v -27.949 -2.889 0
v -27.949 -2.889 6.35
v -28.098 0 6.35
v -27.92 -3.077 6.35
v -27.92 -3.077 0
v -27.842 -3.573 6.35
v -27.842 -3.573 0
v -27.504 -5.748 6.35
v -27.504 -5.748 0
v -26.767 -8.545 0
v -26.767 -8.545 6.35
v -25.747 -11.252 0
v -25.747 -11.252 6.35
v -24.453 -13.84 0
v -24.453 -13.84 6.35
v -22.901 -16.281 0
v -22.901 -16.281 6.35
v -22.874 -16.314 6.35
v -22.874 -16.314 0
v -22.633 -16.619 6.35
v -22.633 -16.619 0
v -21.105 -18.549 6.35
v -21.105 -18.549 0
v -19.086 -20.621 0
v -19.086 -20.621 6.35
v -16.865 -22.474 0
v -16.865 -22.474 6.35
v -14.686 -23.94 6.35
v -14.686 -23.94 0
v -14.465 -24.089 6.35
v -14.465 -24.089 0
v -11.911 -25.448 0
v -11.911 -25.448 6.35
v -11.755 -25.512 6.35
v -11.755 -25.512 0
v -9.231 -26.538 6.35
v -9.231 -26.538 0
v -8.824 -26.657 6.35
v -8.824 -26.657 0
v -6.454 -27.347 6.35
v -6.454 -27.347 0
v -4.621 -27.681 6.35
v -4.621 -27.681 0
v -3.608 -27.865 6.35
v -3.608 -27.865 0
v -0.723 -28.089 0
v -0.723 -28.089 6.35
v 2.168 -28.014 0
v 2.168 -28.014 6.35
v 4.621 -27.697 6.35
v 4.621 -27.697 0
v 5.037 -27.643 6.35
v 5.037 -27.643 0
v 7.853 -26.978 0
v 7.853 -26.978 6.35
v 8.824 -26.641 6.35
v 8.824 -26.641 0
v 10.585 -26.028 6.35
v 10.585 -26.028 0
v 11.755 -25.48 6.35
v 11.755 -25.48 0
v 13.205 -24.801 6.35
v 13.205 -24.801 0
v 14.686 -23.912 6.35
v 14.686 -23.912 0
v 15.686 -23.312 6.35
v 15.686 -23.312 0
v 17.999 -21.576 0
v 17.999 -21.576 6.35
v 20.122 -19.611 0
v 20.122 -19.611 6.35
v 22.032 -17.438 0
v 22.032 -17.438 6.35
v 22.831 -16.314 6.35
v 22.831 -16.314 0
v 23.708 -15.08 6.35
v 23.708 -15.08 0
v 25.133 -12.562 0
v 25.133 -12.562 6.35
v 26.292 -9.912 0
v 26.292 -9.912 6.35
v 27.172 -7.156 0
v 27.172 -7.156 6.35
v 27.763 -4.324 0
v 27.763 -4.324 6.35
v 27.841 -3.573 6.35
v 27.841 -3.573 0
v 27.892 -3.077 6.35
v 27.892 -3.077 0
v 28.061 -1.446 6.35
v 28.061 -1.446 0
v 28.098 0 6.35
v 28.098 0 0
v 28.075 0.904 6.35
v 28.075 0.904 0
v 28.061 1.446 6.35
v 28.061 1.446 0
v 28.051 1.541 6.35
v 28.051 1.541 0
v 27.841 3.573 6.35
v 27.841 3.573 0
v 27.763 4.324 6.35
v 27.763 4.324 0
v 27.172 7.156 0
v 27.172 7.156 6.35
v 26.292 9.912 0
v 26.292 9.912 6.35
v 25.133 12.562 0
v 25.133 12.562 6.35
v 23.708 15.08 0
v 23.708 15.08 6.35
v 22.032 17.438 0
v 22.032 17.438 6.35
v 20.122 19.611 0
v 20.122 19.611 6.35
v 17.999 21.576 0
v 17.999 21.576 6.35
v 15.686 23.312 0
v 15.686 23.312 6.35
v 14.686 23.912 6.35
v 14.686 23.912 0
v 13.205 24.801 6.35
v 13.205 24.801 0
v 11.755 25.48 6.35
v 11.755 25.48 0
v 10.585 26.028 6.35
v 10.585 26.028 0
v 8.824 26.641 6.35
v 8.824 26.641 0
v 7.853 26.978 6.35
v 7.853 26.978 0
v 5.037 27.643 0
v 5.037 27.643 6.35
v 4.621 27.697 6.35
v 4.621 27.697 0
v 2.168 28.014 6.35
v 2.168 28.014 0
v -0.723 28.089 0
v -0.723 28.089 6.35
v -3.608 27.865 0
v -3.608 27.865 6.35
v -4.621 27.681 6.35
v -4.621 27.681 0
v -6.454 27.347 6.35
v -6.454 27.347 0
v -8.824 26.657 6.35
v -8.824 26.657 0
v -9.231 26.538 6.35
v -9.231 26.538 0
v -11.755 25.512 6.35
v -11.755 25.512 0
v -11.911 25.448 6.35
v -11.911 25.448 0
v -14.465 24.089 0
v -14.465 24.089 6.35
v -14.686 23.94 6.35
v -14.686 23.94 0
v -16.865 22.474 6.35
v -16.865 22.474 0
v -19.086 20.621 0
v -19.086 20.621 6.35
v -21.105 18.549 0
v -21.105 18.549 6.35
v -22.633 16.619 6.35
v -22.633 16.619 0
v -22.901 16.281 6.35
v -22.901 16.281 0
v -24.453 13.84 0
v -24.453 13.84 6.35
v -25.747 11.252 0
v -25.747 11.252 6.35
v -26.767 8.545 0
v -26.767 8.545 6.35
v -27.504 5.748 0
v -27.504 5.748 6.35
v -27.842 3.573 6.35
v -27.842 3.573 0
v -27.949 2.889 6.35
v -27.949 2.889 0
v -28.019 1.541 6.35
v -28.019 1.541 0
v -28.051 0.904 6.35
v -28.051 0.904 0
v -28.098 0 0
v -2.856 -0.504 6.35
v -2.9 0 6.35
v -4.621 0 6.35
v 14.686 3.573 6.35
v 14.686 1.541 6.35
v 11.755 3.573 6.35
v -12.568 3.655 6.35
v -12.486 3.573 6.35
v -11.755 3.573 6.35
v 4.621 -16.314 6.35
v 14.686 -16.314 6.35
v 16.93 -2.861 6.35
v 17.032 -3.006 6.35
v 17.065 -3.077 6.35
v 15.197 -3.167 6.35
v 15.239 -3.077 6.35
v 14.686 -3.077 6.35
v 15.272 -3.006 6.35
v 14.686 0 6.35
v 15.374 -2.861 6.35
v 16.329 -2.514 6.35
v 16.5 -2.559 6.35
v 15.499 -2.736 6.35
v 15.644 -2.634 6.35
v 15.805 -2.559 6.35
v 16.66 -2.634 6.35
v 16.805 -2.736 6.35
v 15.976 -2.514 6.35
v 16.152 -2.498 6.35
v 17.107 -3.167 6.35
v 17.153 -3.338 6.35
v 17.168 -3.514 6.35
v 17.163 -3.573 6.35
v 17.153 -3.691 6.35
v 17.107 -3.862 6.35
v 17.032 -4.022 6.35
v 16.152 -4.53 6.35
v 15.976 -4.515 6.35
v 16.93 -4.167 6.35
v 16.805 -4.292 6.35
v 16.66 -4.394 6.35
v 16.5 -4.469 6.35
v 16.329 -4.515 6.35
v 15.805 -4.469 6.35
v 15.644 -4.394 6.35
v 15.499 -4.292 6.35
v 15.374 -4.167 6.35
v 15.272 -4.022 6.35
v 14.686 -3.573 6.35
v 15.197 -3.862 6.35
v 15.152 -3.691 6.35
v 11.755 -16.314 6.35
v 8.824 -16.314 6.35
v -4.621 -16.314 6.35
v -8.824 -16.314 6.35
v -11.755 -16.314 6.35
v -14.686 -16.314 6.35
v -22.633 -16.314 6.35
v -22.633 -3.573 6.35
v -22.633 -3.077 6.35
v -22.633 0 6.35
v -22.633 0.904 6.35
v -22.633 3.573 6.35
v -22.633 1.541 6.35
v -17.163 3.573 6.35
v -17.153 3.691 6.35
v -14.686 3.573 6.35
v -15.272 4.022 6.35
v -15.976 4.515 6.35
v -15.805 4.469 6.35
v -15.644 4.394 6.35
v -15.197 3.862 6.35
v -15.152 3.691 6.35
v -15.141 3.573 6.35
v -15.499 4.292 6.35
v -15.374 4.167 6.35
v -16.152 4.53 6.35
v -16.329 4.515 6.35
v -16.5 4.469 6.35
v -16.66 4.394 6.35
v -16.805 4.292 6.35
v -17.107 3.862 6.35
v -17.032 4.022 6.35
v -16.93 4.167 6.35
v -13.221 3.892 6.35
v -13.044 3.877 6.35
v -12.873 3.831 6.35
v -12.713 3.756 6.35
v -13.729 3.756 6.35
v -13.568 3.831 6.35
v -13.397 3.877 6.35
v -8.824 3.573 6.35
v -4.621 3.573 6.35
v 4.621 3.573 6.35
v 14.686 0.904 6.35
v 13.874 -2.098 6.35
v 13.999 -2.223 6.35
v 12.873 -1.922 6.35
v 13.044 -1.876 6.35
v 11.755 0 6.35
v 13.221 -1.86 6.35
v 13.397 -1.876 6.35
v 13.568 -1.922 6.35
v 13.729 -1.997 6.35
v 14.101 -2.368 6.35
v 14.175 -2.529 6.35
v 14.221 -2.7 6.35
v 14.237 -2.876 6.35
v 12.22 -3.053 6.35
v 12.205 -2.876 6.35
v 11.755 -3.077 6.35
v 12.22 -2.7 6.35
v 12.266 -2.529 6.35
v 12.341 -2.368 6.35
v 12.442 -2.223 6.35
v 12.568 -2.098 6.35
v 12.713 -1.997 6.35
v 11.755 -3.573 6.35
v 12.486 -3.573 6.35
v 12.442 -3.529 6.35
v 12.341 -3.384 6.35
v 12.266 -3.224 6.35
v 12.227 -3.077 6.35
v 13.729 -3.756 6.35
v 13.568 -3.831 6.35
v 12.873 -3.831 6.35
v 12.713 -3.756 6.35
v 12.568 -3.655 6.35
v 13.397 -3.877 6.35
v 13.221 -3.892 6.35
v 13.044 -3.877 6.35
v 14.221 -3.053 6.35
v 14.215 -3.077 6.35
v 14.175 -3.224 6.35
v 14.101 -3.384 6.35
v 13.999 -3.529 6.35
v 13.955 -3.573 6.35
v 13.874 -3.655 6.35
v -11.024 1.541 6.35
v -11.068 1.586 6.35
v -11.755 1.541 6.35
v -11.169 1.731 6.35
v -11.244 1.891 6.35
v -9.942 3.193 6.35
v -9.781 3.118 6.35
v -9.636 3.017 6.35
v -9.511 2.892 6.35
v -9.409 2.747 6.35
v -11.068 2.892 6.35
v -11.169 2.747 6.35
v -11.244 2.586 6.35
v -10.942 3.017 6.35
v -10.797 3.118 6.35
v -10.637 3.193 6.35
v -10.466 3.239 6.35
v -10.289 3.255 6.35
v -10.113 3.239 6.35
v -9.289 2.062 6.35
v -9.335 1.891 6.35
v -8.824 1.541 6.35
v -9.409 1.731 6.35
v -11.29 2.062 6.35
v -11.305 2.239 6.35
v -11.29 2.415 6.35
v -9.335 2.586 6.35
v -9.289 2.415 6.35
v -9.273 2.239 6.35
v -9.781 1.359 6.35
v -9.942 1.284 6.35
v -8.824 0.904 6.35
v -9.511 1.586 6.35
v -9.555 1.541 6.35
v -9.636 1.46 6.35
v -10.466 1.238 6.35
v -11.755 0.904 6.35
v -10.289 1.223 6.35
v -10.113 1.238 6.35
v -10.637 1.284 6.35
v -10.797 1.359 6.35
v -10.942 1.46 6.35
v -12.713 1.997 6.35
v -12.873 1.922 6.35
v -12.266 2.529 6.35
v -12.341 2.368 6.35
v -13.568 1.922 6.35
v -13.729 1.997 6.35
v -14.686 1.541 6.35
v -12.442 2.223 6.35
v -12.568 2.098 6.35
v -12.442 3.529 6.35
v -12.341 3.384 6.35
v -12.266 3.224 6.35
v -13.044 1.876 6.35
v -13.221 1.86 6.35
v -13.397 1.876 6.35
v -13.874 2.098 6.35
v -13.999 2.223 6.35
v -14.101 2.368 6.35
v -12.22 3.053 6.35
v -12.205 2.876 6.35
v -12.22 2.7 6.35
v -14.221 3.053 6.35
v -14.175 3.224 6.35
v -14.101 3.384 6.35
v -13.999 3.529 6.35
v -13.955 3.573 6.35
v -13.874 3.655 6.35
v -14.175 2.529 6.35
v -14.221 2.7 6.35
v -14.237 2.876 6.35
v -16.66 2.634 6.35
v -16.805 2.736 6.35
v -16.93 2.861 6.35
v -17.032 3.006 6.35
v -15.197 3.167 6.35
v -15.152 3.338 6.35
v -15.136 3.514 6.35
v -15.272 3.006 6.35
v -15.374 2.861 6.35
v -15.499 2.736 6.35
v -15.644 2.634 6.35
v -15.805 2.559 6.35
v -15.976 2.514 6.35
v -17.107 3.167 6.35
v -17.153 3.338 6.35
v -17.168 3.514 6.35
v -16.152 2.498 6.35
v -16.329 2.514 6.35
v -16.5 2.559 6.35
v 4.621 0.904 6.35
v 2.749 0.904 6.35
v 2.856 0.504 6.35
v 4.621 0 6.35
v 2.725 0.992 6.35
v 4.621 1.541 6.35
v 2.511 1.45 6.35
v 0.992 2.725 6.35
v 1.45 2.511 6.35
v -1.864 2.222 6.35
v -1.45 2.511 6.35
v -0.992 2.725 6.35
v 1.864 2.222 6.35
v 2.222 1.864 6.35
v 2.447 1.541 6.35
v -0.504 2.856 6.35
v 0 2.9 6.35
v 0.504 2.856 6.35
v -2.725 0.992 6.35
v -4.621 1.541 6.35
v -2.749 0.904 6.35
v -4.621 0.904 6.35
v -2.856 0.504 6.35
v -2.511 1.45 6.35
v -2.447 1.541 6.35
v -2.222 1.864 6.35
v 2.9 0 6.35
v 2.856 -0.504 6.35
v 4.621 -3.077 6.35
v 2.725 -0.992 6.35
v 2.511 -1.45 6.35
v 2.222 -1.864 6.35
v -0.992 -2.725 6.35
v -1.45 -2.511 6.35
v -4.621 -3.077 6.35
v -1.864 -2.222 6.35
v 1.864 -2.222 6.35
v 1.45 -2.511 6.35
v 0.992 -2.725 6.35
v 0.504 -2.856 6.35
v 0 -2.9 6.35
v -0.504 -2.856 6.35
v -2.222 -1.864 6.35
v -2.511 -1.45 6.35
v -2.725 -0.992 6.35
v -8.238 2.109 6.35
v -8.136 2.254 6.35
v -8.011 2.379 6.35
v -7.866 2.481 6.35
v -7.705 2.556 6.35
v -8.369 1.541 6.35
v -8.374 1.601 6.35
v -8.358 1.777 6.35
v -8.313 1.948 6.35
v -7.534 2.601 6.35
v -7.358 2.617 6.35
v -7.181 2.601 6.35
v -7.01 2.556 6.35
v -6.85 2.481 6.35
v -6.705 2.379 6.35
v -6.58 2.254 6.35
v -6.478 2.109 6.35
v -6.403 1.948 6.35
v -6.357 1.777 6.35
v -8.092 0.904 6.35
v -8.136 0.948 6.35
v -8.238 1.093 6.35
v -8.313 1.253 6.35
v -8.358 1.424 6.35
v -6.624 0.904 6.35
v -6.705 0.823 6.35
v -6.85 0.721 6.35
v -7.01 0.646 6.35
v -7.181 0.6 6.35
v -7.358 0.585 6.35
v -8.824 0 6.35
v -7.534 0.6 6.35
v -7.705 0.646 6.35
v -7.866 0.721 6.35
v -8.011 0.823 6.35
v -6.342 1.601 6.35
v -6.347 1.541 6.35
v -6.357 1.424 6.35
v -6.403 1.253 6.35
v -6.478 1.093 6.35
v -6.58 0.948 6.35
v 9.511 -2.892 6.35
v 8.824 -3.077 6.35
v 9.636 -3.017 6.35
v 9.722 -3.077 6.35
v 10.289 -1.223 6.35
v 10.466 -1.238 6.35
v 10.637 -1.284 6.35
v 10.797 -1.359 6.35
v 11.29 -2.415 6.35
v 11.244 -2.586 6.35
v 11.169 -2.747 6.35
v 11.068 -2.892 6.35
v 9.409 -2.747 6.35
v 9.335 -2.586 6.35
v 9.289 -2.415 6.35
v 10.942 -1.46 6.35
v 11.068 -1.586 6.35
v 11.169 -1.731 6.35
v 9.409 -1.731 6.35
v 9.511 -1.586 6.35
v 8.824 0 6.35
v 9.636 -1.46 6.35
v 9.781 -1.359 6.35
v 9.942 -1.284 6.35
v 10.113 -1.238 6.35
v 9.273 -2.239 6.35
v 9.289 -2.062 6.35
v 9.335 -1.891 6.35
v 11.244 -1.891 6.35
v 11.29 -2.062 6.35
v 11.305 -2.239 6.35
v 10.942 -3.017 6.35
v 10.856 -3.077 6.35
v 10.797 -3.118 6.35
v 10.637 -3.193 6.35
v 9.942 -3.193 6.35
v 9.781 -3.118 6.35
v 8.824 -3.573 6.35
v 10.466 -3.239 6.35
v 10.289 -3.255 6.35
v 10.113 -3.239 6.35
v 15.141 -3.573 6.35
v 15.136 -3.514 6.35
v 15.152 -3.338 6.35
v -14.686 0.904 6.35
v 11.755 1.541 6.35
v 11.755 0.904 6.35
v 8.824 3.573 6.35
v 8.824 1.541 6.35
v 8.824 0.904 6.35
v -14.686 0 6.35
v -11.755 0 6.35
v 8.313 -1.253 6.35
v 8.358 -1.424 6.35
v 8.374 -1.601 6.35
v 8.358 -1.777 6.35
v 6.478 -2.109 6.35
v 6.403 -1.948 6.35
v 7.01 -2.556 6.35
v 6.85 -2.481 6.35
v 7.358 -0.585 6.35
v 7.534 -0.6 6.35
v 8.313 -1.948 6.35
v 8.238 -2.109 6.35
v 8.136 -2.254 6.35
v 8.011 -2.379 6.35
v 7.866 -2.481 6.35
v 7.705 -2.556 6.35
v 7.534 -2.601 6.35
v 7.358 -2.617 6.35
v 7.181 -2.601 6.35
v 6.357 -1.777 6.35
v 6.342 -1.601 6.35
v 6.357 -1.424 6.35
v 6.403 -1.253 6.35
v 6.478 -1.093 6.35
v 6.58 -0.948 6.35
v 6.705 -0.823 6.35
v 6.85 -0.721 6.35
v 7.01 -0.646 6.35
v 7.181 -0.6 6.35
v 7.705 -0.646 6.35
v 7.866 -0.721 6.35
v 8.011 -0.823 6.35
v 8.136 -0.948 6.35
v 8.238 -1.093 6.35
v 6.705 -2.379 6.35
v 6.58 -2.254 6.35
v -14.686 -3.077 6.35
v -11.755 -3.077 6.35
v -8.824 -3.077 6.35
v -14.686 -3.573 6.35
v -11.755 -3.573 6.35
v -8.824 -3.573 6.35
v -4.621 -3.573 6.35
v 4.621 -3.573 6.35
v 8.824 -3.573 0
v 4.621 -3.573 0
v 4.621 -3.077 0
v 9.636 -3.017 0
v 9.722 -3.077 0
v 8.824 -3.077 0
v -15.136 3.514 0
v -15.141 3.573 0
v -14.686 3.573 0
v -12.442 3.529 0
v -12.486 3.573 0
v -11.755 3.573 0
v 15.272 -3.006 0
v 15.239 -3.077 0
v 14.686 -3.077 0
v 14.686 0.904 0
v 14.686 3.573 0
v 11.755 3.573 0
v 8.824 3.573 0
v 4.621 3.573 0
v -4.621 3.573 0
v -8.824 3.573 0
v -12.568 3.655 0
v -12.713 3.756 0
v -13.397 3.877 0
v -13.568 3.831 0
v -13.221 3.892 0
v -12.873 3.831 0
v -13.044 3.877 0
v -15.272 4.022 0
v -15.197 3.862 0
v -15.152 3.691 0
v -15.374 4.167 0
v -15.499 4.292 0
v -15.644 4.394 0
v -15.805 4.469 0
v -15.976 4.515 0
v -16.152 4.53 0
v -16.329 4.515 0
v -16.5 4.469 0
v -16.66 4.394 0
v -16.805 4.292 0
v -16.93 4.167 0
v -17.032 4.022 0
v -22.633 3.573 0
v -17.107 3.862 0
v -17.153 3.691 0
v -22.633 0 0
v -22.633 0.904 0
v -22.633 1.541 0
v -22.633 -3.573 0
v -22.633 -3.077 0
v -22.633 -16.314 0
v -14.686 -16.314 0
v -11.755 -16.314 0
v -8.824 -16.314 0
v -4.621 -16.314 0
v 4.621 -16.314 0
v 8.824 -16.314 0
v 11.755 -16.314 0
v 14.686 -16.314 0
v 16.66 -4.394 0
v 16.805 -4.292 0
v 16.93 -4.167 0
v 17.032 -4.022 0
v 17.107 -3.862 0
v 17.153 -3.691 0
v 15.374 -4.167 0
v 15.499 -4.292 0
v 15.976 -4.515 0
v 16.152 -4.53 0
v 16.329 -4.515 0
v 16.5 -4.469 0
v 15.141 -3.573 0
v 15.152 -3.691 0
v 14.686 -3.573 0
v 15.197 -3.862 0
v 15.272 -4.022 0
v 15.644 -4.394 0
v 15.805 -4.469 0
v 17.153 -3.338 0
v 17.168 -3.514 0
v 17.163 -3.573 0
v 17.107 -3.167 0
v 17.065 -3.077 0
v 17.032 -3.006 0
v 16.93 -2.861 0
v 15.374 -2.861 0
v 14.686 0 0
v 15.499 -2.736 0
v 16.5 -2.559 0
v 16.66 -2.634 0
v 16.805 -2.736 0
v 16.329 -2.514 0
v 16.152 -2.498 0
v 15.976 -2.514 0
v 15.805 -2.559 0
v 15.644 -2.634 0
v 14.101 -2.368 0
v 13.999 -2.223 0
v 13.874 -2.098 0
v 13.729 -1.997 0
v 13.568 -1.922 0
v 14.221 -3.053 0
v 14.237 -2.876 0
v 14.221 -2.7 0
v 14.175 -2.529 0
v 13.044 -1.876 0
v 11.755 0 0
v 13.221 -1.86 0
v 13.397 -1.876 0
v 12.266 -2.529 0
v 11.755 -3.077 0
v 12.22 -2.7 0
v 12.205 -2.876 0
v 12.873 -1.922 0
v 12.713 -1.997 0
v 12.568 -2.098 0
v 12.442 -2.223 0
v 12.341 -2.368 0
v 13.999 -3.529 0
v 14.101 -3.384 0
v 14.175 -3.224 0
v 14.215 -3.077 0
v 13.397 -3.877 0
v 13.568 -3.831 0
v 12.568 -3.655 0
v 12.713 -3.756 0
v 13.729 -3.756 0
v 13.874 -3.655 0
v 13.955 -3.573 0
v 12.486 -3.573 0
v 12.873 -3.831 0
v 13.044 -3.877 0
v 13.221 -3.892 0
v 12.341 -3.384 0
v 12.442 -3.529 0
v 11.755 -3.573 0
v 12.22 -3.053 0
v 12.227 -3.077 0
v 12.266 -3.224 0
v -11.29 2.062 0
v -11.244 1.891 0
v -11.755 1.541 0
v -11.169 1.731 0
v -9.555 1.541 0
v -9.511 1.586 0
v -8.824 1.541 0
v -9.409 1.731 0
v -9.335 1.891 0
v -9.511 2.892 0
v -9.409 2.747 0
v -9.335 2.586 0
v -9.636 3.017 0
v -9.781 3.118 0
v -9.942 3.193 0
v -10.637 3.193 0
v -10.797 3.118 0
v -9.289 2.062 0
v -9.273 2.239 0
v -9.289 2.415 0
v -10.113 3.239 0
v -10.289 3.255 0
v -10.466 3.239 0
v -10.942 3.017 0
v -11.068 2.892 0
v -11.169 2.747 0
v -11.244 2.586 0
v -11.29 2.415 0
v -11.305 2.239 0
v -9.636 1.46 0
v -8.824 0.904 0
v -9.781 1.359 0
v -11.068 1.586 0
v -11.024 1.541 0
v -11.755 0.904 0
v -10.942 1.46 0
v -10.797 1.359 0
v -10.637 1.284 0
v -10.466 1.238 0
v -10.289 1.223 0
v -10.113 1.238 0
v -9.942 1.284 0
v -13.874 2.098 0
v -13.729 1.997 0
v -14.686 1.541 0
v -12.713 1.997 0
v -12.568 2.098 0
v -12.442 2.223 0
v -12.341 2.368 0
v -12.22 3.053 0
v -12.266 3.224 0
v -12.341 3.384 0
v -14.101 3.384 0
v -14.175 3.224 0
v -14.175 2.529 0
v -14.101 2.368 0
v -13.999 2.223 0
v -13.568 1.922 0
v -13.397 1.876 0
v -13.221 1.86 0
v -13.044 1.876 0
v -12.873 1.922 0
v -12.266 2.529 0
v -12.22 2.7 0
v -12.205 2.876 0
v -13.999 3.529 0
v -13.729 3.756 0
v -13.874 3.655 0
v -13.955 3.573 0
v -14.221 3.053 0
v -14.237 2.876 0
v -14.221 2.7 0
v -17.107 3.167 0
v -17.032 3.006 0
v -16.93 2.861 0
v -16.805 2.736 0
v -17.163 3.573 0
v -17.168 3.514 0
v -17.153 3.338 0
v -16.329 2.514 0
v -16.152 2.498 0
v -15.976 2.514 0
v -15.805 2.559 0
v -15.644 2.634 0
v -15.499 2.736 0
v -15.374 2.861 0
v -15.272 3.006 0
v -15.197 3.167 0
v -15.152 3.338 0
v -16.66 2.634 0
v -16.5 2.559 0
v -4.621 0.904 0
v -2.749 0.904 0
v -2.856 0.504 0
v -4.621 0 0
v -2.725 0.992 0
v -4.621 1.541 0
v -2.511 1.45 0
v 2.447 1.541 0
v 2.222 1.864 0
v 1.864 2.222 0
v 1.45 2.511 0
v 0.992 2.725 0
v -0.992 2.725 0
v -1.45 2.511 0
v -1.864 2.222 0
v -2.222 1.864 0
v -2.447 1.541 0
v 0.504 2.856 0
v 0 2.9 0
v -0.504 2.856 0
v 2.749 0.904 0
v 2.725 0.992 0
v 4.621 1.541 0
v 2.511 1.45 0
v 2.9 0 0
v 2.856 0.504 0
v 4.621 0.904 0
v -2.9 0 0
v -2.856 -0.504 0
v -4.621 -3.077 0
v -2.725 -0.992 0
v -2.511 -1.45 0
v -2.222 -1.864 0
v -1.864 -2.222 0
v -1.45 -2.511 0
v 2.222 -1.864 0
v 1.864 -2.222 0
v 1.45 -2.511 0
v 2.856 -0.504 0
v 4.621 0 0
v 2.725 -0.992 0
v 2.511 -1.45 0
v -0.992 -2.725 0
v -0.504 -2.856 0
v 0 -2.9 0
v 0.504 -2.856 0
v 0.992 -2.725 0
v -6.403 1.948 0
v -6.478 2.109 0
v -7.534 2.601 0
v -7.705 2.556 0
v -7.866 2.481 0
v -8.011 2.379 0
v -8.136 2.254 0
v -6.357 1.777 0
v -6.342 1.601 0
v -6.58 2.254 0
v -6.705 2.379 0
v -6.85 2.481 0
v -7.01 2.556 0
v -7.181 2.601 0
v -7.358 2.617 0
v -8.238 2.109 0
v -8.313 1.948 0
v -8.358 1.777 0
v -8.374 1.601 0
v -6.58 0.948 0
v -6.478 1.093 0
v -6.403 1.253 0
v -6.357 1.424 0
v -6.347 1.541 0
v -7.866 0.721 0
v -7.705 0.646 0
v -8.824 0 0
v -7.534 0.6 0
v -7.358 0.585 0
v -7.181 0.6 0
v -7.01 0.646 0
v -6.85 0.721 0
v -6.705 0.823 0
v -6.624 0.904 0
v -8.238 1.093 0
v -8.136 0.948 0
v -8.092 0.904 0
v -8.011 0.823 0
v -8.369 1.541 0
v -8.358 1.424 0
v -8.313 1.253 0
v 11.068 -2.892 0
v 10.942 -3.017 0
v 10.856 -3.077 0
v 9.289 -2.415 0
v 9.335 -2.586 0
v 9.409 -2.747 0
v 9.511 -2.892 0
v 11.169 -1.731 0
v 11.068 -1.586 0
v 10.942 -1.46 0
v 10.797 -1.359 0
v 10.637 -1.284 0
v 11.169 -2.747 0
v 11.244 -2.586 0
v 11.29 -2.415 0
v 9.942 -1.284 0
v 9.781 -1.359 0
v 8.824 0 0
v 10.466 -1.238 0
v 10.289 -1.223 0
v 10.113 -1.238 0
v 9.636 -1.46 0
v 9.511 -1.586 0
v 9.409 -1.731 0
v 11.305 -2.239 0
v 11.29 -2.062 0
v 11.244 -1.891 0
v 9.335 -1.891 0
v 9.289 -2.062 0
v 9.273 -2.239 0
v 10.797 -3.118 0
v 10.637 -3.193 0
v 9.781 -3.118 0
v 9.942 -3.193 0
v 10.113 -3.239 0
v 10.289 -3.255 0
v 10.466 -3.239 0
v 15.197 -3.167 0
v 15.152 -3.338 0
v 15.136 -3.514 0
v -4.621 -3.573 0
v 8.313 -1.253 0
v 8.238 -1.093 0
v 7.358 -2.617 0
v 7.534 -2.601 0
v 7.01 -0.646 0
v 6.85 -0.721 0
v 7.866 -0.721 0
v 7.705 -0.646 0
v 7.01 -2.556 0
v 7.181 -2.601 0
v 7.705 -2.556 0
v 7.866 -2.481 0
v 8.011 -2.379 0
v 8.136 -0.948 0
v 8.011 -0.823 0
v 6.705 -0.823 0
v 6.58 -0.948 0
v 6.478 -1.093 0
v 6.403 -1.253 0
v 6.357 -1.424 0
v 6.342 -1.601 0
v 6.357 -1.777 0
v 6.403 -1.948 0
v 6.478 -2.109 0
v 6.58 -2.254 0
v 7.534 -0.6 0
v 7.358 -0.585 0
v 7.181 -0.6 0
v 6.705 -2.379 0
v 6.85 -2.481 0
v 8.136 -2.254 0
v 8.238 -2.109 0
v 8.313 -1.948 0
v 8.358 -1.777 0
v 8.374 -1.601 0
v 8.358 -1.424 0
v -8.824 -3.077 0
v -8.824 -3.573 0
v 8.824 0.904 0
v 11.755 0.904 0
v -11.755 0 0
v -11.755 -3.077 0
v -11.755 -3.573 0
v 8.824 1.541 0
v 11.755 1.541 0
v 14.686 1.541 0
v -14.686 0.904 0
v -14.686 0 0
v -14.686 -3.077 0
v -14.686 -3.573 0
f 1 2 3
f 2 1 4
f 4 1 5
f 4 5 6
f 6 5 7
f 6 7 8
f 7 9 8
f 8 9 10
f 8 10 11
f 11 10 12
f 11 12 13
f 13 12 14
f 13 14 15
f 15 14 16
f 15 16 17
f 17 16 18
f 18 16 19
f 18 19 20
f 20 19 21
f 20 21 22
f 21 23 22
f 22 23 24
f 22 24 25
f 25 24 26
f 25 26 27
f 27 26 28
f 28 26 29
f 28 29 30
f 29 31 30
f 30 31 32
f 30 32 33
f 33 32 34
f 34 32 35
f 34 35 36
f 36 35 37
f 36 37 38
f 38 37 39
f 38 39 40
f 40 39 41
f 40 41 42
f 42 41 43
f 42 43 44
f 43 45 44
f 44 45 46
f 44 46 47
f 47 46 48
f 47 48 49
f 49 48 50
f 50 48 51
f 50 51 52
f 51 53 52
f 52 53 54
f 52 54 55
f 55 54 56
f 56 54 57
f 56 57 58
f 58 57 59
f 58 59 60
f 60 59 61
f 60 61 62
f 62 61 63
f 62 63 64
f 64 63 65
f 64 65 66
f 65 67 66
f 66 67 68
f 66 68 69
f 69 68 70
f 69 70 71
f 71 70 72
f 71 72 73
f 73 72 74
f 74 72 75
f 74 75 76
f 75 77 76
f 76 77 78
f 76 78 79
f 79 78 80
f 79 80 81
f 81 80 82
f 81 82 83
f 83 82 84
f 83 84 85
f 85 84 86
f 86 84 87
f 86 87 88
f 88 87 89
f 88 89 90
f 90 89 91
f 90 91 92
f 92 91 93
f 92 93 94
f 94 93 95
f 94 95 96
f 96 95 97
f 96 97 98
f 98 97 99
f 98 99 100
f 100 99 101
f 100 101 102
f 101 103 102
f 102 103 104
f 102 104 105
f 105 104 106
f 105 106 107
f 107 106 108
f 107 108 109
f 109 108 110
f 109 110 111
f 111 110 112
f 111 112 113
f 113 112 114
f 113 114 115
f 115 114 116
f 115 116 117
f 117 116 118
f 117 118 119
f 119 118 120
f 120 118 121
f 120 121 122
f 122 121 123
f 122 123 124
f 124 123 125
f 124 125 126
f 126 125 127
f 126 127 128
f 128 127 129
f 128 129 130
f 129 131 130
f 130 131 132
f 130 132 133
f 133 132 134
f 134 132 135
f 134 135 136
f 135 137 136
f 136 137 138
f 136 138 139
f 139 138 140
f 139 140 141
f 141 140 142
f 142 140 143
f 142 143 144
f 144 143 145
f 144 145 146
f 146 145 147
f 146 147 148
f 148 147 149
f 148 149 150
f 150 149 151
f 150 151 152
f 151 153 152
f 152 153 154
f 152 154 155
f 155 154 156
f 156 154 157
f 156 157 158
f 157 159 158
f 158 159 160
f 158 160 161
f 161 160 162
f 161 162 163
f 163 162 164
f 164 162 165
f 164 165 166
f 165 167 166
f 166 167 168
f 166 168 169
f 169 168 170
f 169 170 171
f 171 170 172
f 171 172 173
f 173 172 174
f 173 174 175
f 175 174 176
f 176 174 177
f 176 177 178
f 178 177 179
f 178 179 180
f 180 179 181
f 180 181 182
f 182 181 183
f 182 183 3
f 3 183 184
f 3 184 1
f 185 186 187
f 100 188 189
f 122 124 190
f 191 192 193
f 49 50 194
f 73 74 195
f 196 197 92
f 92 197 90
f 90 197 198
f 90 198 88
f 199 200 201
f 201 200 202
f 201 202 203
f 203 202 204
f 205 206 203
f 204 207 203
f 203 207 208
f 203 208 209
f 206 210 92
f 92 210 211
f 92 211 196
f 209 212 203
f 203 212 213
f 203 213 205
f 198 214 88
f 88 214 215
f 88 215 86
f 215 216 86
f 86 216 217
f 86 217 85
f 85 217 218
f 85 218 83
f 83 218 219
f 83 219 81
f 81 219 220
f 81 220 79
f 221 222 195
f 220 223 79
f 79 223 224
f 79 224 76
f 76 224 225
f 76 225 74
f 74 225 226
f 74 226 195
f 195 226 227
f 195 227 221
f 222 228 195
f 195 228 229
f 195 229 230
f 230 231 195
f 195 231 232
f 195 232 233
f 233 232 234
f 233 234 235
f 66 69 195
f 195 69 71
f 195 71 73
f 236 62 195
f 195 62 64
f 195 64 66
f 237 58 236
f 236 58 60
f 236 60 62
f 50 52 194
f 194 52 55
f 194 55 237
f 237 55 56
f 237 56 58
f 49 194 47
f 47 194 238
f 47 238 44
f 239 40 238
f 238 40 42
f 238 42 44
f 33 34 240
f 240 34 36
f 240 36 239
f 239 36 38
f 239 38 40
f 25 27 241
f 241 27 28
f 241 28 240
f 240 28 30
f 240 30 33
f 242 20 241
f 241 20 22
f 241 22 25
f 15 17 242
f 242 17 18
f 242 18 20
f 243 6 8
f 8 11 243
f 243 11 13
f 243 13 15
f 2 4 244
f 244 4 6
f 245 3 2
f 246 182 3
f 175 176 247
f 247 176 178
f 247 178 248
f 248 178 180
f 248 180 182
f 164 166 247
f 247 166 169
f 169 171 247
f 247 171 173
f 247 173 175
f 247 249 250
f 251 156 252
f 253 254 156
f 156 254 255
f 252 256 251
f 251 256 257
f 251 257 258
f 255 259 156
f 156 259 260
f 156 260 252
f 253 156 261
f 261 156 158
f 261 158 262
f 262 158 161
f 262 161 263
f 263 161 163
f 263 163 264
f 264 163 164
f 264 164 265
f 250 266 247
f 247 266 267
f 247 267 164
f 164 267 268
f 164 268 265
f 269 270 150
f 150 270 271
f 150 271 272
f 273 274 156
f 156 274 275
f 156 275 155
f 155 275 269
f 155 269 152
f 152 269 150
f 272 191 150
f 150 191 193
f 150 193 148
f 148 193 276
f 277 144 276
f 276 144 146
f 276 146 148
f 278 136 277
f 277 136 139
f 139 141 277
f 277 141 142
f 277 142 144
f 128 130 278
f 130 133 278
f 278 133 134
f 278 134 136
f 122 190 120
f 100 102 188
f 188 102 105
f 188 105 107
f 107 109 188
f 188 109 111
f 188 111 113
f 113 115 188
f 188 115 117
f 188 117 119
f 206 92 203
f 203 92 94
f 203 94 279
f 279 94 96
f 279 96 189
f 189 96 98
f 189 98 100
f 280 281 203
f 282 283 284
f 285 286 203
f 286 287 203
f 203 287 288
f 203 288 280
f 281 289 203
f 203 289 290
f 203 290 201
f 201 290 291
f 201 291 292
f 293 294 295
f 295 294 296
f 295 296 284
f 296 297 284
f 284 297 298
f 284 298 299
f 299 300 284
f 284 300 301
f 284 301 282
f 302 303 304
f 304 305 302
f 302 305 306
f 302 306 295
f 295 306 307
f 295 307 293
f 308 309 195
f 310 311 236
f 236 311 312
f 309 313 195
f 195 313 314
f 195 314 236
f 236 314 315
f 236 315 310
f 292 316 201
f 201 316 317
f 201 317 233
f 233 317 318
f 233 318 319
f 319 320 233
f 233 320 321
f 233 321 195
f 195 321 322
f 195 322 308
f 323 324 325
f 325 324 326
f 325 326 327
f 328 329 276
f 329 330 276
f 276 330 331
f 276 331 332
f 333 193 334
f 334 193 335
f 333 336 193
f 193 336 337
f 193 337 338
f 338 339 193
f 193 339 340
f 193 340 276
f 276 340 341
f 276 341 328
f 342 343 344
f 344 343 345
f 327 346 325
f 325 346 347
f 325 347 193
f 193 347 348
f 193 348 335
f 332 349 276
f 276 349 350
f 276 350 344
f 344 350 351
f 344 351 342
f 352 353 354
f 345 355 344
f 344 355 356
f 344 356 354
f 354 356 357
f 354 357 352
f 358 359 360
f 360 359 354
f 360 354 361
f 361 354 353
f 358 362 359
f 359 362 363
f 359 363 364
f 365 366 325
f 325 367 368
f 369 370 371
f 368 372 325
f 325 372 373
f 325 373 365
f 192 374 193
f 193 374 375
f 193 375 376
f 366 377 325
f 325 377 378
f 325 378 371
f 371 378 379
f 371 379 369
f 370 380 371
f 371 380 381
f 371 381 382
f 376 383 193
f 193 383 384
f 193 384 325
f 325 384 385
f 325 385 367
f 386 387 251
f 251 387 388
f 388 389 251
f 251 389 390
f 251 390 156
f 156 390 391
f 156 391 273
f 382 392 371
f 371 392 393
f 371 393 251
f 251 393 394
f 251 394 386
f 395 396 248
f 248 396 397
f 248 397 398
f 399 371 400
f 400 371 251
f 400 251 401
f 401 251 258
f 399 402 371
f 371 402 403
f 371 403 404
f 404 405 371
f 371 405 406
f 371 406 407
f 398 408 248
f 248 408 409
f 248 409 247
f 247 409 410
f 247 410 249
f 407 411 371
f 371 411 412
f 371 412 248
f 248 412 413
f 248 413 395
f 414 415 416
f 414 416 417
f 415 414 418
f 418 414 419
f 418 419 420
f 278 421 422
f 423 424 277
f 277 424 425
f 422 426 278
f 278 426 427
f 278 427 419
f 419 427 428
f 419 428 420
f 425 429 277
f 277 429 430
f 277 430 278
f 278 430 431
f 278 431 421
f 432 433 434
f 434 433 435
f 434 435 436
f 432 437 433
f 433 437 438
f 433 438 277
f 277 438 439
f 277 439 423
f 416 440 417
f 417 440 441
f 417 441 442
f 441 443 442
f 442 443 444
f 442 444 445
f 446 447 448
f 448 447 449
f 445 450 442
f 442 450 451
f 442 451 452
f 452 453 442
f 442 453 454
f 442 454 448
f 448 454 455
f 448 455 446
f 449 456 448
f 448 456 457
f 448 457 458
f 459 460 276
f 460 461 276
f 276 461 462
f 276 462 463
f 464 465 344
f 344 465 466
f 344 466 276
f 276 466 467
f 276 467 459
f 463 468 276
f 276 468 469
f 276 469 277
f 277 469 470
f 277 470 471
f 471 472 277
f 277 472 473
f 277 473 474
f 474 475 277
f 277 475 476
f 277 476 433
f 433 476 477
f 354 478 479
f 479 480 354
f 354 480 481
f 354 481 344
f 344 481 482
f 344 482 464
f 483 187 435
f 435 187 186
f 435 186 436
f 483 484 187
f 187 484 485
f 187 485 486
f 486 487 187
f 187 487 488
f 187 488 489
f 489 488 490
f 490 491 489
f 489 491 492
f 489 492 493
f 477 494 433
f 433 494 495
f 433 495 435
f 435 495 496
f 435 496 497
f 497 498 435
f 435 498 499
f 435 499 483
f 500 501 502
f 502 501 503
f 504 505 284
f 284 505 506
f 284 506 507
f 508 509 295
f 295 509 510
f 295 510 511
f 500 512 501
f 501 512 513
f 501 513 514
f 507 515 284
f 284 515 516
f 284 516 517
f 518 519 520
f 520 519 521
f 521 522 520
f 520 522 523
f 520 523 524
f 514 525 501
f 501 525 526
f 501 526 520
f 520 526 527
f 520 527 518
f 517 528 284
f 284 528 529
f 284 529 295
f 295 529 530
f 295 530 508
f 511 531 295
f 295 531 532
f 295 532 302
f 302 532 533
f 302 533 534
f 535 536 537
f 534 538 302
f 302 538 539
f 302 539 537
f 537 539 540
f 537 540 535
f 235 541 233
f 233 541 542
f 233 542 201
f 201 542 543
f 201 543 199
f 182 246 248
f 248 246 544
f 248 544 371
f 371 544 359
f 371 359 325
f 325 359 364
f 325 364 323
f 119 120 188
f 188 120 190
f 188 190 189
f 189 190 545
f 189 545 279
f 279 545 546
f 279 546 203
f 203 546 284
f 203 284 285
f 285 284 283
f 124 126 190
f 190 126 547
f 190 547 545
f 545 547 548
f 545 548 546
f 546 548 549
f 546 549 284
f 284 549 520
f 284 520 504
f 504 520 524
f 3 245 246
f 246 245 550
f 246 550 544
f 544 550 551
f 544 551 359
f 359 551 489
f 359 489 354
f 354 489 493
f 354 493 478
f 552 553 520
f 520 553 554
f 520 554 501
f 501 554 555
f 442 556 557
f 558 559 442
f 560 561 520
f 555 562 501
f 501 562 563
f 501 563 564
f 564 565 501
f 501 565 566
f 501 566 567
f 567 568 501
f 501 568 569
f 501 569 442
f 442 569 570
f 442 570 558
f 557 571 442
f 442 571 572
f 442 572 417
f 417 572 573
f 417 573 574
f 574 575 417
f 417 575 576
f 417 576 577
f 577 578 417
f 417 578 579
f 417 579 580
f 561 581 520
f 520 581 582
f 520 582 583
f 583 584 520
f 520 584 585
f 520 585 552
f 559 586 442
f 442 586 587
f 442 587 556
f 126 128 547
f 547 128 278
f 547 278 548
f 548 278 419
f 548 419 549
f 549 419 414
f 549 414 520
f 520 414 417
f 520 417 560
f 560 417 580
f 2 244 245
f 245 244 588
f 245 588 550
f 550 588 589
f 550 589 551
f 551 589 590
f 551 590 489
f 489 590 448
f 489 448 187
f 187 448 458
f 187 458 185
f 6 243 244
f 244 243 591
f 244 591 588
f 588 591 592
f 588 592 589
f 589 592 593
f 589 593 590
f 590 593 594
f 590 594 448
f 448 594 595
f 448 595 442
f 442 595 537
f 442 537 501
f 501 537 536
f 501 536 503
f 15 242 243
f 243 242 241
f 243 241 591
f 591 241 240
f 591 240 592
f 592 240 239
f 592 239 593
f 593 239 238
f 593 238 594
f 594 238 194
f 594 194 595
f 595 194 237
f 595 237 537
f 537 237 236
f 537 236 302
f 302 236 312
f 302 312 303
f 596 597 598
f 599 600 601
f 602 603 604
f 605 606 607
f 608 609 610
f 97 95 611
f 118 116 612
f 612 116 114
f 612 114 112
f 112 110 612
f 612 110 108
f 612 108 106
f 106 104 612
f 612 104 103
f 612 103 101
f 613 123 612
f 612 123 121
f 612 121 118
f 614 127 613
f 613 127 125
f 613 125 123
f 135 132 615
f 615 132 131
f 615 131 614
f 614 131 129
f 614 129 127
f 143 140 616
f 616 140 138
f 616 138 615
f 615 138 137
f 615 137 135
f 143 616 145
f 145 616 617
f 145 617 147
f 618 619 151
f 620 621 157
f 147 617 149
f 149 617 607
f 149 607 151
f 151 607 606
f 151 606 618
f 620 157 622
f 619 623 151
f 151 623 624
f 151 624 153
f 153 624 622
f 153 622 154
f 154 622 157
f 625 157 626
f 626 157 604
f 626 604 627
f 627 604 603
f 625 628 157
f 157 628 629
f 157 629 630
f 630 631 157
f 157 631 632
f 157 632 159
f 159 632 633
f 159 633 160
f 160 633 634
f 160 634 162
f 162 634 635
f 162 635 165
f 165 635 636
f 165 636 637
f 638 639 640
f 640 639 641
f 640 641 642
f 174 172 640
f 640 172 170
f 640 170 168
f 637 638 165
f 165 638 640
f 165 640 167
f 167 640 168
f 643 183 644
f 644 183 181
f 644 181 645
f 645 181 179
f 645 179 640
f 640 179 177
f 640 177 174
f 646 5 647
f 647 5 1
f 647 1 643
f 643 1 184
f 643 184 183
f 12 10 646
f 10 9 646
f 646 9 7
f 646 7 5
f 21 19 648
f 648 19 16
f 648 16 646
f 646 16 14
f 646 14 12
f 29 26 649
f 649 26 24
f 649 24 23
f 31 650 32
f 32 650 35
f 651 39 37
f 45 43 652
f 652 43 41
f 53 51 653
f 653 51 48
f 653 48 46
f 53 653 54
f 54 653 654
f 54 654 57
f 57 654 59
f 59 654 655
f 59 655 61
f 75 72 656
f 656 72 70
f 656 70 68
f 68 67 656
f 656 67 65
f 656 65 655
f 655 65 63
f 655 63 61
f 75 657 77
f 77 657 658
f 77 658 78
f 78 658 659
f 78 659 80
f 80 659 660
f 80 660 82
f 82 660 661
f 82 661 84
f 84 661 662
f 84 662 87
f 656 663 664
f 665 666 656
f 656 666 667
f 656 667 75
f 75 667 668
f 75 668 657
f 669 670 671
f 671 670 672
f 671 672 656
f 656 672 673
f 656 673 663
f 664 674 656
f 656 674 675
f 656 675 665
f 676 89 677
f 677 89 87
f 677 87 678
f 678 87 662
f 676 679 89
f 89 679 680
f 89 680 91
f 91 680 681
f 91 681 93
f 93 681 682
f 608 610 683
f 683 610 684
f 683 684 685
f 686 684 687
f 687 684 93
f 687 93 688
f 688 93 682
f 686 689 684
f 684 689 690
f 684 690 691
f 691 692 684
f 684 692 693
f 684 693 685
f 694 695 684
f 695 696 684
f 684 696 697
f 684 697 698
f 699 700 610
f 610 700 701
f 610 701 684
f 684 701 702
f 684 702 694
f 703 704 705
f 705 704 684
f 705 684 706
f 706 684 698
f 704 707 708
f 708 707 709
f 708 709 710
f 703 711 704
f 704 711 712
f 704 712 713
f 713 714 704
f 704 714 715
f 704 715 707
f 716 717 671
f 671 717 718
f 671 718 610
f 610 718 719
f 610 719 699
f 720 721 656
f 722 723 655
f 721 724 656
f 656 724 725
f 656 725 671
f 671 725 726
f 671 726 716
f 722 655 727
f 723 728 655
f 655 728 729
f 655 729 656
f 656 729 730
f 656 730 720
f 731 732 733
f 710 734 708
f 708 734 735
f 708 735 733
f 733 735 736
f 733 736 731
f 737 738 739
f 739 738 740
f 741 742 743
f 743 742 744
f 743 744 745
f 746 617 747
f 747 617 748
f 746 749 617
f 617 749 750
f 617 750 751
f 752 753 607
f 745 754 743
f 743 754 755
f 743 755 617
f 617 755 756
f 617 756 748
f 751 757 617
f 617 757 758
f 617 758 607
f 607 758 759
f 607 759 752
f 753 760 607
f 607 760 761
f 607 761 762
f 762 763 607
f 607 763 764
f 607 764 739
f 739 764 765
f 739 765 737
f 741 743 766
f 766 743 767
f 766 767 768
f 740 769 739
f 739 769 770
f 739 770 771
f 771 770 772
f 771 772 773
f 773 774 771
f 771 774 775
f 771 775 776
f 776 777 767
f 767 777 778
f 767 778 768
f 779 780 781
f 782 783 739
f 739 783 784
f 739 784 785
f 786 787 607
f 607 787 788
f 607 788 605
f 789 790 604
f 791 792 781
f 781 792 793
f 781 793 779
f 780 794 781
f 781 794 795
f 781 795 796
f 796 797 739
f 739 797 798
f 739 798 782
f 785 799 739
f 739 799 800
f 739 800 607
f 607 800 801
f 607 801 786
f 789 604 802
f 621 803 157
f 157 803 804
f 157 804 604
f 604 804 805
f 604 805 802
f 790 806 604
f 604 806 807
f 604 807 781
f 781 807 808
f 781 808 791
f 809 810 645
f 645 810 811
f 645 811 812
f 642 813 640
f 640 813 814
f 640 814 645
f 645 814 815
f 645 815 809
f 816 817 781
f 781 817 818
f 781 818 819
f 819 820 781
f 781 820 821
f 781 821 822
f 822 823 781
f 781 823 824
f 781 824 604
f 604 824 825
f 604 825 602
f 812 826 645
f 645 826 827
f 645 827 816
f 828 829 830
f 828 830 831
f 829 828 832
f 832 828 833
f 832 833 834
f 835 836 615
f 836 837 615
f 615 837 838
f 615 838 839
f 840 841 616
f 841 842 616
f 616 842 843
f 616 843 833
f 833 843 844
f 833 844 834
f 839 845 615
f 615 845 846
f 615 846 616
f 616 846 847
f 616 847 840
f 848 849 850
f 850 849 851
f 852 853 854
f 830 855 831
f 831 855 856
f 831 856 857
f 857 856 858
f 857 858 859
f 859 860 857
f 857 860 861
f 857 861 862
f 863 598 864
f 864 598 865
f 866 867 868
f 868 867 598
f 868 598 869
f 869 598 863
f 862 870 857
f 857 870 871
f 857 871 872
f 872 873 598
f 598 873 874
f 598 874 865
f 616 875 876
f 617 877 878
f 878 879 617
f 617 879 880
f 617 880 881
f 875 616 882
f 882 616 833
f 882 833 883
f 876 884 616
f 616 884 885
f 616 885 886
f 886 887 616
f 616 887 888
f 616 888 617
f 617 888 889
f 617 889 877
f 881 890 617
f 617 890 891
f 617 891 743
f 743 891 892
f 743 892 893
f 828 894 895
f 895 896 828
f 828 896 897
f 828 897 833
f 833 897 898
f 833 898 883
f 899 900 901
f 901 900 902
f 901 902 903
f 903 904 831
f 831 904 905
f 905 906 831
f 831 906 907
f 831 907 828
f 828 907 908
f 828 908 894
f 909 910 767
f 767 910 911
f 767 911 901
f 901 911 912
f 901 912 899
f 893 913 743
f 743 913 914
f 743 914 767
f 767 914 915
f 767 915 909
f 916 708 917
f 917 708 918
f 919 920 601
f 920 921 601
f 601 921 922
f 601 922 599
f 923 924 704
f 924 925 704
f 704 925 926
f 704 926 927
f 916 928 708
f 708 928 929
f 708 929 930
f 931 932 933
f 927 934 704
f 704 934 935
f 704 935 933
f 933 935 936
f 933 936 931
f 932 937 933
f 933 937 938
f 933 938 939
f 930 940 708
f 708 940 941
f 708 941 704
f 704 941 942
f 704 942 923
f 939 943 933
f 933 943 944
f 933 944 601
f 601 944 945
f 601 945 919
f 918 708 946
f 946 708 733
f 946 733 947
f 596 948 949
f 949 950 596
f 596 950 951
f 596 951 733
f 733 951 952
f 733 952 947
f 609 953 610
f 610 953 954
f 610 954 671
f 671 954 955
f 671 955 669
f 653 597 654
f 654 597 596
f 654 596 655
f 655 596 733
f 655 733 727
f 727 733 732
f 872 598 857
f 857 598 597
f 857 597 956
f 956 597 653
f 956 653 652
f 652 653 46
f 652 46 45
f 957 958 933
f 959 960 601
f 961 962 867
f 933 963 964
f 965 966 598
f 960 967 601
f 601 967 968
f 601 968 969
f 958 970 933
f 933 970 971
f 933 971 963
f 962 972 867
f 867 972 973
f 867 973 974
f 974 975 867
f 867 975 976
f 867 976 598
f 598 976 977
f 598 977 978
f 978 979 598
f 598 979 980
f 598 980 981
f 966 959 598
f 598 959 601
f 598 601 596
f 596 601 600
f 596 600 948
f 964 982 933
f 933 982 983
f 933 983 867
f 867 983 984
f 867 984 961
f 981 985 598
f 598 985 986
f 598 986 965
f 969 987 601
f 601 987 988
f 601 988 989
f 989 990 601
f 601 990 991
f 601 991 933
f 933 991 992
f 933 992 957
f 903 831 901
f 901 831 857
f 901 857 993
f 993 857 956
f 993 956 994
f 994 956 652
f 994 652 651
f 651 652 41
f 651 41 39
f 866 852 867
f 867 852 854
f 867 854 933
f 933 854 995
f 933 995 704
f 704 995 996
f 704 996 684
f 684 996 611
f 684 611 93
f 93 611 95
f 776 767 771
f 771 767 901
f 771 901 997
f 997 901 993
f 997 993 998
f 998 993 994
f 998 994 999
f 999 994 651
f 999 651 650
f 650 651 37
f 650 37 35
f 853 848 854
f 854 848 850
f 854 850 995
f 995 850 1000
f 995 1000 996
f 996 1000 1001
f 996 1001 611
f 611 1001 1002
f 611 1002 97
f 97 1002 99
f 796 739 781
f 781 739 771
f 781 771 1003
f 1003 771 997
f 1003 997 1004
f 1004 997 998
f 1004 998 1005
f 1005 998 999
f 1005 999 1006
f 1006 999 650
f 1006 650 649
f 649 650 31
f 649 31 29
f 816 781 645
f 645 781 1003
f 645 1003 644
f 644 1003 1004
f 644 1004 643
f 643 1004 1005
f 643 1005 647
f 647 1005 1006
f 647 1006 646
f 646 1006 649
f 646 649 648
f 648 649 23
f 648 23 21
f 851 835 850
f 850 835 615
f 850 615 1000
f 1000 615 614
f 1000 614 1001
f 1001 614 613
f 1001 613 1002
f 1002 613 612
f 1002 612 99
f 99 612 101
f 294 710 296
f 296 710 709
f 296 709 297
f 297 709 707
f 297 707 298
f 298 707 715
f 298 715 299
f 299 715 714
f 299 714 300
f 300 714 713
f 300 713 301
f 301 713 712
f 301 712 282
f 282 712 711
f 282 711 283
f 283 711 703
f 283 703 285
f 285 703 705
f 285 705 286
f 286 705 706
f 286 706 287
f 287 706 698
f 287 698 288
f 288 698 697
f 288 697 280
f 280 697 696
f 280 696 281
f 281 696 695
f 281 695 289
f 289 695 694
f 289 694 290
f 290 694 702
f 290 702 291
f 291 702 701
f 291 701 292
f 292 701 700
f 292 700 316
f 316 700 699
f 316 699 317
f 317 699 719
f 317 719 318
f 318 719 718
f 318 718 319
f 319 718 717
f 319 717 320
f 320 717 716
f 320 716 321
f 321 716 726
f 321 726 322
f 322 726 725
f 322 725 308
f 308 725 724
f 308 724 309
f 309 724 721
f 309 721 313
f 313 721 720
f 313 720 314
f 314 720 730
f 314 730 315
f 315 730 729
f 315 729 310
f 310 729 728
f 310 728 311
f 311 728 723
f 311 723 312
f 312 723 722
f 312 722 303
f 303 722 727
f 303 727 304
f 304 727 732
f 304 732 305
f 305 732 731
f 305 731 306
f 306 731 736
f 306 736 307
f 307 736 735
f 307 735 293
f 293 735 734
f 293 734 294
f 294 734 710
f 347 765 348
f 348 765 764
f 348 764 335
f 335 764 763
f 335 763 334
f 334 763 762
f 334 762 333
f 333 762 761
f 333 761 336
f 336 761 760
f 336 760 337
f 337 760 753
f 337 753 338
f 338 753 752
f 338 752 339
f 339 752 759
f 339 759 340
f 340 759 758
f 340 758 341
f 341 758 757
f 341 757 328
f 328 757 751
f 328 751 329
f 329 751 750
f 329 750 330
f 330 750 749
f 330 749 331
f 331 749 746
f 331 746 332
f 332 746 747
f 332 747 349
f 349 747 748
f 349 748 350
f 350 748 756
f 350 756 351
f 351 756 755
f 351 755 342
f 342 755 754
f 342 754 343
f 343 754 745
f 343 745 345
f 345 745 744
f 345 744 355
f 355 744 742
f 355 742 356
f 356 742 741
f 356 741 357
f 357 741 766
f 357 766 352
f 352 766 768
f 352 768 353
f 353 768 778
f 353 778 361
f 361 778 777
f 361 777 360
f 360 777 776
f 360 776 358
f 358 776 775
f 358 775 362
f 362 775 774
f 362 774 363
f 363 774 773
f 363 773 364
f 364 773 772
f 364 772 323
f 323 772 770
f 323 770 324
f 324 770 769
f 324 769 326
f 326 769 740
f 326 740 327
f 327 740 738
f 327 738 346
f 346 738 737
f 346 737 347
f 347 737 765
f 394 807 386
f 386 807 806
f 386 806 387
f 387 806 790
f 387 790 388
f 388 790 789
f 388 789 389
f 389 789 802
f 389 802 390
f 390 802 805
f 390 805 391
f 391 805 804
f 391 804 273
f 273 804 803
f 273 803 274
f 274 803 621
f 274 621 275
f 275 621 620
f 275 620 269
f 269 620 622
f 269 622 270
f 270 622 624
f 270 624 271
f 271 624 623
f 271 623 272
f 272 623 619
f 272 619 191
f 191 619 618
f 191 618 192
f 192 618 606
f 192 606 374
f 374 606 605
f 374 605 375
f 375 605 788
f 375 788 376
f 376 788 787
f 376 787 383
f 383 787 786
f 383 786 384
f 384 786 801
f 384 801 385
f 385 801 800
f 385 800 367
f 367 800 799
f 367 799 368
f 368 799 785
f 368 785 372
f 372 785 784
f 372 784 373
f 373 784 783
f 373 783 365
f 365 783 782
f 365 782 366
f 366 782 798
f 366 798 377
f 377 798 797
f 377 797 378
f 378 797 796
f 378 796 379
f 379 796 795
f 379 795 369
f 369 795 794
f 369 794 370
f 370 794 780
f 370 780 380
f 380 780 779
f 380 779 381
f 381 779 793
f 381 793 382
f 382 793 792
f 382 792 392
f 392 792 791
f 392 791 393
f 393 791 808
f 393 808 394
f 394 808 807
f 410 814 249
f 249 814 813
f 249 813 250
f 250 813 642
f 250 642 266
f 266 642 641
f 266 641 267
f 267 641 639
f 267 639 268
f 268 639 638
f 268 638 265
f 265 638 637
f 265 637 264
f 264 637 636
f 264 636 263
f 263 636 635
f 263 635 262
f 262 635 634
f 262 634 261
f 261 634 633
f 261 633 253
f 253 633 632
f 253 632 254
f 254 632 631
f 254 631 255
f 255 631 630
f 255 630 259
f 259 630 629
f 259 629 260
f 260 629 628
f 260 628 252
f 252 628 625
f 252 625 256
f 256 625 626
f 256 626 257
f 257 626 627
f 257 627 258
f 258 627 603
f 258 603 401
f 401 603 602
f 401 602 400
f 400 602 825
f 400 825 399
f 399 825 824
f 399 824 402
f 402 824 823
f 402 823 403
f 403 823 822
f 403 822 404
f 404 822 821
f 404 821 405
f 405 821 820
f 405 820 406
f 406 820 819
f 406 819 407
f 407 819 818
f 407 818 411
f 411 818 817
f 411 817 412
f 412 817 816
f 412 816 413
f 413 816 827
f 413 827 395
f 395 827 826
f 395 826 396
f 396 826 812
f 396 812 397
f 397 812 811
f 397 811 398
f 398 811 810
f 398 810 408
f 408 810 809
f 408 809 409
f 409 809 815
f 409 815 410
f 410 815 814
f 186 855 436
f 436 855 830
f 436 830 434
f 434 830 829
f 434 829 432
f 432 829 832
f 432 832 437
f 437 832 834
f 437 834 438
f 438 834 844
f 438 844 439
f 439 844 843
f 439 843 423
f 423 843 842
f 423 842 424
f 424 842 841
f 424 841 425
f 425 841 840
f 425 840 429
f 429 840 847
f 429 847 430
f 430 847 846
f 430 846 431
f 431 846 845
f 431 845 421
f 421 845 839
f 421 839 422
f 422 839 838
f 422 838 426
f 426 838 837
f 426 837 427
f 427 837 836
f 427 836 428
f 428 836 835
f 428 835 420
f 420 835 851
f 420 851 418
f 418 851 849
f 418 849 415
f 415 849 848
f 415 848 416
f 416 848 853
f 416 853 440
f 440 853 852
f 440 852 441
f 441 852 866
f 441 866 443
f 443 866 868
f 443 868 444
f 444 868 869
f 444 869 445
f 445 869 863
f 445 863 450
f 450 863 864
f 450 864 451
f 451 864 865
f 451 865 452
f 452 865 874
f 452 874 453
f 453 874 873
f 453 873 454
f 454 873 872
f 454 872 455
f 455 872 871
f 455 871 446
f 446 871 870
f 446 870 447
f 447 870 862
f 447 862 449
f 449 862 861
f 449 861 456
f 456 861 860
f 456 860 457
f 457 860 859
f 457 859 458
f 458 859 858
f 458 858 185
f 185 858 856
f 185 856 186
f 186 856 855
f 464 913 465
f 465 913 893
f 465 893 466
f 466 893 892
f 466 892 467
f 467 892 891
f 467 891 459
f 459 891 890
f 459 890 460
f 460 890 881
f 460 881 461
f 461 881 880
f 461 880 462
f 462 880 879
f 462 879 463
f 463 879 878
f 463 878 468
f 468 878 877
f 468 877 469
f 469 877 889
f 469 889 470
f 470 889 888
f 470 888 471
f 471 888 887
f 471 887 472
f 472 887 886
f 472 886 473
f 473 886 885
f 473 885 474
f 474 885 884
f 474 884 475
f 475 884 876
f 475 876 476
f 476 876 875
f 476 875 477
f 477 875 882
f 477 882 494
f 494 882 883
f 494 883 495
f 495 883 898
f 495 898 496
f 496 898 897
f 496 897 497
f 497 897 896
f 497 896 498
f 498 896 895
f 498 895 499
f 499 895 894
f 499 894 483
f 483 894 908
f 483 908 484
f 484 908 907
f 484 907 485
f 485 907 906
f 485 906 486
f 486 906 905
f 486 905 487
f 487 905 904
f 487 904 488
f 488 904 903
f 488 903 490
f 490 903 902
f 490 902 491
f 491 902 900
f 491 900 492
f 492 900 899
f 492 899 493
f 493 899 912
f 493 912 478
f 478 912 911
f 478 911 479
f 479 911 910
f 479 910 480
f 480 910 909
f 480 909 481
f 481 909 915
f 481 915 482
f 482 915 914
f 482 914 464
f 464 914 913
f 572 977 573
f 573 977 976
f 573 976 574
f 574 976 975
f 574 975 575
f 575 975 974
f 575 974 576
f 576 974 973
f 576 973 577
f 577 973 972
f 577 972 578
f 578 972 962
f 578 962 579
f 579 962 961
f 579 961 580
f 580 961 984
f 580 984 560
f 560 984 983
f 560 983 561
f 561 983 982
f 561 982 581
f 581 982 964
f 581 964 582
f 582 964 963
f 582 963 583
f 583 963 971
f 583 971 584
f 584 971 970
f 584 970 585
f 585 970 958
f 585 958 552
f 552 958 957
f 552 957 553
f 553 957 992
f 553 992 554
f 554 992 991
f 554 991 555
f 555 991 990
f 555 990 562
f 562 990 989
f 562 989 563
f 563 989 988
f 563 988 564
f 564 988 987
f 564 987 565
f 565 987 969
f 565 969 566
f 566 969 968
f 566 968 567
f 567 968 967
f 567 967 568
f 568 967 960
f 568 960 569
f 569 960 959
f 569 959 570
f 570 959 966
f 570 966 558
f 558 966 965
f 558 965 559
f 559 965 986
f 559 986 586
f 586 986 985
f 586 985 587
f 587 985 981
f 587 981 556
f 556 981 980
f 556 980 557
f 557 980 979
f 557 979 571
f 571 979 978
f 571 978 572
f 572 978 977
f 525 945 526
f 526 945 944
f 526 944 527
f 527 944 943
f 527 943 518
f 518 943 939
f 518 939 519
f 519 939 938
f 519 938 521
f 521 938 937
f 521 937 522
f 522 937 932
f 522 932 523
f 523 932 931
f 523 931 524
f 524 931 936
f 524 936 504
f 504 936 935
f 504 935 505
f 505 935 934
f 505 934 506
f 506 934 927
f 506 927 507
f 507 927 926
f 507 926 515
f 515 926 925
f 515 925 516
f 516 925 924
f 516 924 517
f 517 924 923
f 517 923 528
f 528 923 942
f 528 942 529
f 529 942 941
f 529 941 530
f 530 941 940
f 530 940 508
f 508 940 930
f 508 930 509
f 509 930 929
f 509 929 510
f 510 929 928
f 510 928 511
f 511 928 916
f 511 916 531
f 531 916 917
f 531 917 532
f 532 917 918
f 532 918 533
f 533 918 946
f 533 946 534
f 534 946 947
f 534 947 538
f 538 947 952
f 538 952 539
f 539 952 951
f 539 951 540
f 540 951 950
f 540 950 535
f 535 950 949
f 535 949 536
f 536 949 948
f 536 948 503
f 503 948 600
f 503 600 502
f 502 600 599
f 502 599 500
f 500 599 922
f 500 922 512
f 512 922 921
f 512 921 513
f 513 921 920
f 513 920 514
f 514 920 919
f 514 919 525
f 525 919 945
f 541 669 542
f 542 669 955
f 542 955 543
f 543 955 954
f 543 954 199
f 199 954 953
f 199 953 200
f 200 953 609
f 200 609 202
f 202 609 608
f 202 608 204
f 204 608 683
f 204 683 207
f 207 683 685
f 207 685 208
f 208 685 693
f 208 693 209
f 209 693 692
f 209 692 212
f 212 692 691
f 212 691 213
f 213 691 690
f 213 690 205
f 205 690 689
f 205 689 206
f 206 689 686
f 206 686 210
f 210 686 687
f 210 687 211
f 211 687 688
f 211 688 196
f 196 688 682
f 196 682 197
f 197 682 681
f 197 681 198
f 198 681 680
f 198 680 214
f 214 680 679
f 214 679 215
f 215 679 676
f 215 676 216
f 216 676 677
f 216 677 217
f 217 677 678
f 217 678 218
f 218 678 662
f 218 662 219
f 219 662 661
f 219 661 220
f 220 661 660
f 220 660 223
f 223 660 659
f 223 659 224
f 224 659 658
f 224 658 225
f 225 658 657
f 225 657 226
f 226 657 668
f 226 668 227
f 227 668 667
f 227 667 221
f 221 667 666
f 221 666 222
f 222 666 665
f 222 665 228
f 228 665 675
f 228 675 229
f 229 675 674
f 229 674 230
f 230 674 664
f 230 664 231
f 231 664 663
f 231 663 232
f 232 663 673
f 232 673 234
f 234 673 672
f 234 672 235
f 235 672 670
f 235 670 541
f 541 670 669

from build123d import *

# Parameters (mm, degrees)
SKETCH1_R           = 28.097988
BOSS_EXTRUDE1_DEPTH = 6.35
SKETCH2_R           = 1.016
SKETCH2_R_2         = 2.9
CUT_EXTRUDE1_DEPTH  = 6.35


with BuildPart() as part:
    # Sketch1 → Boss-Extrude1 (new body)
    with BuildSketch(Plane.XY):
        Circle(SKETCH1_R)
    extrude(amount=BOSS_EXTRUDE1_DEPTH)

    # Sketch2 → Cut-Extrude1 (cut)
    with BuildSketch(Plane(origin=(0, 0, 0), x_dir=(-1, 0, 0), z_dir=(0, 0, -1))):
        with Locations((-13.220714373, -2.876388616)):
            Circle(SKETCH2_R)
        with Locations((-16.152136629, -3.514168797)):
            Circle(SKETCH2_R)
        with Locations((-10.289292117, -2.238608435)):
            Circle(SKETCH2_R)
        with Locations((-7.357869862, -1.600828254)):
            Circle(SKETCH2_R)
        with Locations((7.357869862, 1.600828254)):
            Circle(SKETCH2_R)
        with Locations((10.289292117, 2.238608435)):
            Circle(SKETCH2_R)
        with Locations((13.220714373, 2.876388616)):
            Circle(SKETCH2_R)
        with Locations((16.152136629, 3.514168797)):
            Circle(SKETCH2_R)
        Circle(SKETCH2_R_2)
    extrude(amount=-CUT_EXTRUDE1_DEPTH, mode=Mode.SUBTRACT)


solid = part.part
